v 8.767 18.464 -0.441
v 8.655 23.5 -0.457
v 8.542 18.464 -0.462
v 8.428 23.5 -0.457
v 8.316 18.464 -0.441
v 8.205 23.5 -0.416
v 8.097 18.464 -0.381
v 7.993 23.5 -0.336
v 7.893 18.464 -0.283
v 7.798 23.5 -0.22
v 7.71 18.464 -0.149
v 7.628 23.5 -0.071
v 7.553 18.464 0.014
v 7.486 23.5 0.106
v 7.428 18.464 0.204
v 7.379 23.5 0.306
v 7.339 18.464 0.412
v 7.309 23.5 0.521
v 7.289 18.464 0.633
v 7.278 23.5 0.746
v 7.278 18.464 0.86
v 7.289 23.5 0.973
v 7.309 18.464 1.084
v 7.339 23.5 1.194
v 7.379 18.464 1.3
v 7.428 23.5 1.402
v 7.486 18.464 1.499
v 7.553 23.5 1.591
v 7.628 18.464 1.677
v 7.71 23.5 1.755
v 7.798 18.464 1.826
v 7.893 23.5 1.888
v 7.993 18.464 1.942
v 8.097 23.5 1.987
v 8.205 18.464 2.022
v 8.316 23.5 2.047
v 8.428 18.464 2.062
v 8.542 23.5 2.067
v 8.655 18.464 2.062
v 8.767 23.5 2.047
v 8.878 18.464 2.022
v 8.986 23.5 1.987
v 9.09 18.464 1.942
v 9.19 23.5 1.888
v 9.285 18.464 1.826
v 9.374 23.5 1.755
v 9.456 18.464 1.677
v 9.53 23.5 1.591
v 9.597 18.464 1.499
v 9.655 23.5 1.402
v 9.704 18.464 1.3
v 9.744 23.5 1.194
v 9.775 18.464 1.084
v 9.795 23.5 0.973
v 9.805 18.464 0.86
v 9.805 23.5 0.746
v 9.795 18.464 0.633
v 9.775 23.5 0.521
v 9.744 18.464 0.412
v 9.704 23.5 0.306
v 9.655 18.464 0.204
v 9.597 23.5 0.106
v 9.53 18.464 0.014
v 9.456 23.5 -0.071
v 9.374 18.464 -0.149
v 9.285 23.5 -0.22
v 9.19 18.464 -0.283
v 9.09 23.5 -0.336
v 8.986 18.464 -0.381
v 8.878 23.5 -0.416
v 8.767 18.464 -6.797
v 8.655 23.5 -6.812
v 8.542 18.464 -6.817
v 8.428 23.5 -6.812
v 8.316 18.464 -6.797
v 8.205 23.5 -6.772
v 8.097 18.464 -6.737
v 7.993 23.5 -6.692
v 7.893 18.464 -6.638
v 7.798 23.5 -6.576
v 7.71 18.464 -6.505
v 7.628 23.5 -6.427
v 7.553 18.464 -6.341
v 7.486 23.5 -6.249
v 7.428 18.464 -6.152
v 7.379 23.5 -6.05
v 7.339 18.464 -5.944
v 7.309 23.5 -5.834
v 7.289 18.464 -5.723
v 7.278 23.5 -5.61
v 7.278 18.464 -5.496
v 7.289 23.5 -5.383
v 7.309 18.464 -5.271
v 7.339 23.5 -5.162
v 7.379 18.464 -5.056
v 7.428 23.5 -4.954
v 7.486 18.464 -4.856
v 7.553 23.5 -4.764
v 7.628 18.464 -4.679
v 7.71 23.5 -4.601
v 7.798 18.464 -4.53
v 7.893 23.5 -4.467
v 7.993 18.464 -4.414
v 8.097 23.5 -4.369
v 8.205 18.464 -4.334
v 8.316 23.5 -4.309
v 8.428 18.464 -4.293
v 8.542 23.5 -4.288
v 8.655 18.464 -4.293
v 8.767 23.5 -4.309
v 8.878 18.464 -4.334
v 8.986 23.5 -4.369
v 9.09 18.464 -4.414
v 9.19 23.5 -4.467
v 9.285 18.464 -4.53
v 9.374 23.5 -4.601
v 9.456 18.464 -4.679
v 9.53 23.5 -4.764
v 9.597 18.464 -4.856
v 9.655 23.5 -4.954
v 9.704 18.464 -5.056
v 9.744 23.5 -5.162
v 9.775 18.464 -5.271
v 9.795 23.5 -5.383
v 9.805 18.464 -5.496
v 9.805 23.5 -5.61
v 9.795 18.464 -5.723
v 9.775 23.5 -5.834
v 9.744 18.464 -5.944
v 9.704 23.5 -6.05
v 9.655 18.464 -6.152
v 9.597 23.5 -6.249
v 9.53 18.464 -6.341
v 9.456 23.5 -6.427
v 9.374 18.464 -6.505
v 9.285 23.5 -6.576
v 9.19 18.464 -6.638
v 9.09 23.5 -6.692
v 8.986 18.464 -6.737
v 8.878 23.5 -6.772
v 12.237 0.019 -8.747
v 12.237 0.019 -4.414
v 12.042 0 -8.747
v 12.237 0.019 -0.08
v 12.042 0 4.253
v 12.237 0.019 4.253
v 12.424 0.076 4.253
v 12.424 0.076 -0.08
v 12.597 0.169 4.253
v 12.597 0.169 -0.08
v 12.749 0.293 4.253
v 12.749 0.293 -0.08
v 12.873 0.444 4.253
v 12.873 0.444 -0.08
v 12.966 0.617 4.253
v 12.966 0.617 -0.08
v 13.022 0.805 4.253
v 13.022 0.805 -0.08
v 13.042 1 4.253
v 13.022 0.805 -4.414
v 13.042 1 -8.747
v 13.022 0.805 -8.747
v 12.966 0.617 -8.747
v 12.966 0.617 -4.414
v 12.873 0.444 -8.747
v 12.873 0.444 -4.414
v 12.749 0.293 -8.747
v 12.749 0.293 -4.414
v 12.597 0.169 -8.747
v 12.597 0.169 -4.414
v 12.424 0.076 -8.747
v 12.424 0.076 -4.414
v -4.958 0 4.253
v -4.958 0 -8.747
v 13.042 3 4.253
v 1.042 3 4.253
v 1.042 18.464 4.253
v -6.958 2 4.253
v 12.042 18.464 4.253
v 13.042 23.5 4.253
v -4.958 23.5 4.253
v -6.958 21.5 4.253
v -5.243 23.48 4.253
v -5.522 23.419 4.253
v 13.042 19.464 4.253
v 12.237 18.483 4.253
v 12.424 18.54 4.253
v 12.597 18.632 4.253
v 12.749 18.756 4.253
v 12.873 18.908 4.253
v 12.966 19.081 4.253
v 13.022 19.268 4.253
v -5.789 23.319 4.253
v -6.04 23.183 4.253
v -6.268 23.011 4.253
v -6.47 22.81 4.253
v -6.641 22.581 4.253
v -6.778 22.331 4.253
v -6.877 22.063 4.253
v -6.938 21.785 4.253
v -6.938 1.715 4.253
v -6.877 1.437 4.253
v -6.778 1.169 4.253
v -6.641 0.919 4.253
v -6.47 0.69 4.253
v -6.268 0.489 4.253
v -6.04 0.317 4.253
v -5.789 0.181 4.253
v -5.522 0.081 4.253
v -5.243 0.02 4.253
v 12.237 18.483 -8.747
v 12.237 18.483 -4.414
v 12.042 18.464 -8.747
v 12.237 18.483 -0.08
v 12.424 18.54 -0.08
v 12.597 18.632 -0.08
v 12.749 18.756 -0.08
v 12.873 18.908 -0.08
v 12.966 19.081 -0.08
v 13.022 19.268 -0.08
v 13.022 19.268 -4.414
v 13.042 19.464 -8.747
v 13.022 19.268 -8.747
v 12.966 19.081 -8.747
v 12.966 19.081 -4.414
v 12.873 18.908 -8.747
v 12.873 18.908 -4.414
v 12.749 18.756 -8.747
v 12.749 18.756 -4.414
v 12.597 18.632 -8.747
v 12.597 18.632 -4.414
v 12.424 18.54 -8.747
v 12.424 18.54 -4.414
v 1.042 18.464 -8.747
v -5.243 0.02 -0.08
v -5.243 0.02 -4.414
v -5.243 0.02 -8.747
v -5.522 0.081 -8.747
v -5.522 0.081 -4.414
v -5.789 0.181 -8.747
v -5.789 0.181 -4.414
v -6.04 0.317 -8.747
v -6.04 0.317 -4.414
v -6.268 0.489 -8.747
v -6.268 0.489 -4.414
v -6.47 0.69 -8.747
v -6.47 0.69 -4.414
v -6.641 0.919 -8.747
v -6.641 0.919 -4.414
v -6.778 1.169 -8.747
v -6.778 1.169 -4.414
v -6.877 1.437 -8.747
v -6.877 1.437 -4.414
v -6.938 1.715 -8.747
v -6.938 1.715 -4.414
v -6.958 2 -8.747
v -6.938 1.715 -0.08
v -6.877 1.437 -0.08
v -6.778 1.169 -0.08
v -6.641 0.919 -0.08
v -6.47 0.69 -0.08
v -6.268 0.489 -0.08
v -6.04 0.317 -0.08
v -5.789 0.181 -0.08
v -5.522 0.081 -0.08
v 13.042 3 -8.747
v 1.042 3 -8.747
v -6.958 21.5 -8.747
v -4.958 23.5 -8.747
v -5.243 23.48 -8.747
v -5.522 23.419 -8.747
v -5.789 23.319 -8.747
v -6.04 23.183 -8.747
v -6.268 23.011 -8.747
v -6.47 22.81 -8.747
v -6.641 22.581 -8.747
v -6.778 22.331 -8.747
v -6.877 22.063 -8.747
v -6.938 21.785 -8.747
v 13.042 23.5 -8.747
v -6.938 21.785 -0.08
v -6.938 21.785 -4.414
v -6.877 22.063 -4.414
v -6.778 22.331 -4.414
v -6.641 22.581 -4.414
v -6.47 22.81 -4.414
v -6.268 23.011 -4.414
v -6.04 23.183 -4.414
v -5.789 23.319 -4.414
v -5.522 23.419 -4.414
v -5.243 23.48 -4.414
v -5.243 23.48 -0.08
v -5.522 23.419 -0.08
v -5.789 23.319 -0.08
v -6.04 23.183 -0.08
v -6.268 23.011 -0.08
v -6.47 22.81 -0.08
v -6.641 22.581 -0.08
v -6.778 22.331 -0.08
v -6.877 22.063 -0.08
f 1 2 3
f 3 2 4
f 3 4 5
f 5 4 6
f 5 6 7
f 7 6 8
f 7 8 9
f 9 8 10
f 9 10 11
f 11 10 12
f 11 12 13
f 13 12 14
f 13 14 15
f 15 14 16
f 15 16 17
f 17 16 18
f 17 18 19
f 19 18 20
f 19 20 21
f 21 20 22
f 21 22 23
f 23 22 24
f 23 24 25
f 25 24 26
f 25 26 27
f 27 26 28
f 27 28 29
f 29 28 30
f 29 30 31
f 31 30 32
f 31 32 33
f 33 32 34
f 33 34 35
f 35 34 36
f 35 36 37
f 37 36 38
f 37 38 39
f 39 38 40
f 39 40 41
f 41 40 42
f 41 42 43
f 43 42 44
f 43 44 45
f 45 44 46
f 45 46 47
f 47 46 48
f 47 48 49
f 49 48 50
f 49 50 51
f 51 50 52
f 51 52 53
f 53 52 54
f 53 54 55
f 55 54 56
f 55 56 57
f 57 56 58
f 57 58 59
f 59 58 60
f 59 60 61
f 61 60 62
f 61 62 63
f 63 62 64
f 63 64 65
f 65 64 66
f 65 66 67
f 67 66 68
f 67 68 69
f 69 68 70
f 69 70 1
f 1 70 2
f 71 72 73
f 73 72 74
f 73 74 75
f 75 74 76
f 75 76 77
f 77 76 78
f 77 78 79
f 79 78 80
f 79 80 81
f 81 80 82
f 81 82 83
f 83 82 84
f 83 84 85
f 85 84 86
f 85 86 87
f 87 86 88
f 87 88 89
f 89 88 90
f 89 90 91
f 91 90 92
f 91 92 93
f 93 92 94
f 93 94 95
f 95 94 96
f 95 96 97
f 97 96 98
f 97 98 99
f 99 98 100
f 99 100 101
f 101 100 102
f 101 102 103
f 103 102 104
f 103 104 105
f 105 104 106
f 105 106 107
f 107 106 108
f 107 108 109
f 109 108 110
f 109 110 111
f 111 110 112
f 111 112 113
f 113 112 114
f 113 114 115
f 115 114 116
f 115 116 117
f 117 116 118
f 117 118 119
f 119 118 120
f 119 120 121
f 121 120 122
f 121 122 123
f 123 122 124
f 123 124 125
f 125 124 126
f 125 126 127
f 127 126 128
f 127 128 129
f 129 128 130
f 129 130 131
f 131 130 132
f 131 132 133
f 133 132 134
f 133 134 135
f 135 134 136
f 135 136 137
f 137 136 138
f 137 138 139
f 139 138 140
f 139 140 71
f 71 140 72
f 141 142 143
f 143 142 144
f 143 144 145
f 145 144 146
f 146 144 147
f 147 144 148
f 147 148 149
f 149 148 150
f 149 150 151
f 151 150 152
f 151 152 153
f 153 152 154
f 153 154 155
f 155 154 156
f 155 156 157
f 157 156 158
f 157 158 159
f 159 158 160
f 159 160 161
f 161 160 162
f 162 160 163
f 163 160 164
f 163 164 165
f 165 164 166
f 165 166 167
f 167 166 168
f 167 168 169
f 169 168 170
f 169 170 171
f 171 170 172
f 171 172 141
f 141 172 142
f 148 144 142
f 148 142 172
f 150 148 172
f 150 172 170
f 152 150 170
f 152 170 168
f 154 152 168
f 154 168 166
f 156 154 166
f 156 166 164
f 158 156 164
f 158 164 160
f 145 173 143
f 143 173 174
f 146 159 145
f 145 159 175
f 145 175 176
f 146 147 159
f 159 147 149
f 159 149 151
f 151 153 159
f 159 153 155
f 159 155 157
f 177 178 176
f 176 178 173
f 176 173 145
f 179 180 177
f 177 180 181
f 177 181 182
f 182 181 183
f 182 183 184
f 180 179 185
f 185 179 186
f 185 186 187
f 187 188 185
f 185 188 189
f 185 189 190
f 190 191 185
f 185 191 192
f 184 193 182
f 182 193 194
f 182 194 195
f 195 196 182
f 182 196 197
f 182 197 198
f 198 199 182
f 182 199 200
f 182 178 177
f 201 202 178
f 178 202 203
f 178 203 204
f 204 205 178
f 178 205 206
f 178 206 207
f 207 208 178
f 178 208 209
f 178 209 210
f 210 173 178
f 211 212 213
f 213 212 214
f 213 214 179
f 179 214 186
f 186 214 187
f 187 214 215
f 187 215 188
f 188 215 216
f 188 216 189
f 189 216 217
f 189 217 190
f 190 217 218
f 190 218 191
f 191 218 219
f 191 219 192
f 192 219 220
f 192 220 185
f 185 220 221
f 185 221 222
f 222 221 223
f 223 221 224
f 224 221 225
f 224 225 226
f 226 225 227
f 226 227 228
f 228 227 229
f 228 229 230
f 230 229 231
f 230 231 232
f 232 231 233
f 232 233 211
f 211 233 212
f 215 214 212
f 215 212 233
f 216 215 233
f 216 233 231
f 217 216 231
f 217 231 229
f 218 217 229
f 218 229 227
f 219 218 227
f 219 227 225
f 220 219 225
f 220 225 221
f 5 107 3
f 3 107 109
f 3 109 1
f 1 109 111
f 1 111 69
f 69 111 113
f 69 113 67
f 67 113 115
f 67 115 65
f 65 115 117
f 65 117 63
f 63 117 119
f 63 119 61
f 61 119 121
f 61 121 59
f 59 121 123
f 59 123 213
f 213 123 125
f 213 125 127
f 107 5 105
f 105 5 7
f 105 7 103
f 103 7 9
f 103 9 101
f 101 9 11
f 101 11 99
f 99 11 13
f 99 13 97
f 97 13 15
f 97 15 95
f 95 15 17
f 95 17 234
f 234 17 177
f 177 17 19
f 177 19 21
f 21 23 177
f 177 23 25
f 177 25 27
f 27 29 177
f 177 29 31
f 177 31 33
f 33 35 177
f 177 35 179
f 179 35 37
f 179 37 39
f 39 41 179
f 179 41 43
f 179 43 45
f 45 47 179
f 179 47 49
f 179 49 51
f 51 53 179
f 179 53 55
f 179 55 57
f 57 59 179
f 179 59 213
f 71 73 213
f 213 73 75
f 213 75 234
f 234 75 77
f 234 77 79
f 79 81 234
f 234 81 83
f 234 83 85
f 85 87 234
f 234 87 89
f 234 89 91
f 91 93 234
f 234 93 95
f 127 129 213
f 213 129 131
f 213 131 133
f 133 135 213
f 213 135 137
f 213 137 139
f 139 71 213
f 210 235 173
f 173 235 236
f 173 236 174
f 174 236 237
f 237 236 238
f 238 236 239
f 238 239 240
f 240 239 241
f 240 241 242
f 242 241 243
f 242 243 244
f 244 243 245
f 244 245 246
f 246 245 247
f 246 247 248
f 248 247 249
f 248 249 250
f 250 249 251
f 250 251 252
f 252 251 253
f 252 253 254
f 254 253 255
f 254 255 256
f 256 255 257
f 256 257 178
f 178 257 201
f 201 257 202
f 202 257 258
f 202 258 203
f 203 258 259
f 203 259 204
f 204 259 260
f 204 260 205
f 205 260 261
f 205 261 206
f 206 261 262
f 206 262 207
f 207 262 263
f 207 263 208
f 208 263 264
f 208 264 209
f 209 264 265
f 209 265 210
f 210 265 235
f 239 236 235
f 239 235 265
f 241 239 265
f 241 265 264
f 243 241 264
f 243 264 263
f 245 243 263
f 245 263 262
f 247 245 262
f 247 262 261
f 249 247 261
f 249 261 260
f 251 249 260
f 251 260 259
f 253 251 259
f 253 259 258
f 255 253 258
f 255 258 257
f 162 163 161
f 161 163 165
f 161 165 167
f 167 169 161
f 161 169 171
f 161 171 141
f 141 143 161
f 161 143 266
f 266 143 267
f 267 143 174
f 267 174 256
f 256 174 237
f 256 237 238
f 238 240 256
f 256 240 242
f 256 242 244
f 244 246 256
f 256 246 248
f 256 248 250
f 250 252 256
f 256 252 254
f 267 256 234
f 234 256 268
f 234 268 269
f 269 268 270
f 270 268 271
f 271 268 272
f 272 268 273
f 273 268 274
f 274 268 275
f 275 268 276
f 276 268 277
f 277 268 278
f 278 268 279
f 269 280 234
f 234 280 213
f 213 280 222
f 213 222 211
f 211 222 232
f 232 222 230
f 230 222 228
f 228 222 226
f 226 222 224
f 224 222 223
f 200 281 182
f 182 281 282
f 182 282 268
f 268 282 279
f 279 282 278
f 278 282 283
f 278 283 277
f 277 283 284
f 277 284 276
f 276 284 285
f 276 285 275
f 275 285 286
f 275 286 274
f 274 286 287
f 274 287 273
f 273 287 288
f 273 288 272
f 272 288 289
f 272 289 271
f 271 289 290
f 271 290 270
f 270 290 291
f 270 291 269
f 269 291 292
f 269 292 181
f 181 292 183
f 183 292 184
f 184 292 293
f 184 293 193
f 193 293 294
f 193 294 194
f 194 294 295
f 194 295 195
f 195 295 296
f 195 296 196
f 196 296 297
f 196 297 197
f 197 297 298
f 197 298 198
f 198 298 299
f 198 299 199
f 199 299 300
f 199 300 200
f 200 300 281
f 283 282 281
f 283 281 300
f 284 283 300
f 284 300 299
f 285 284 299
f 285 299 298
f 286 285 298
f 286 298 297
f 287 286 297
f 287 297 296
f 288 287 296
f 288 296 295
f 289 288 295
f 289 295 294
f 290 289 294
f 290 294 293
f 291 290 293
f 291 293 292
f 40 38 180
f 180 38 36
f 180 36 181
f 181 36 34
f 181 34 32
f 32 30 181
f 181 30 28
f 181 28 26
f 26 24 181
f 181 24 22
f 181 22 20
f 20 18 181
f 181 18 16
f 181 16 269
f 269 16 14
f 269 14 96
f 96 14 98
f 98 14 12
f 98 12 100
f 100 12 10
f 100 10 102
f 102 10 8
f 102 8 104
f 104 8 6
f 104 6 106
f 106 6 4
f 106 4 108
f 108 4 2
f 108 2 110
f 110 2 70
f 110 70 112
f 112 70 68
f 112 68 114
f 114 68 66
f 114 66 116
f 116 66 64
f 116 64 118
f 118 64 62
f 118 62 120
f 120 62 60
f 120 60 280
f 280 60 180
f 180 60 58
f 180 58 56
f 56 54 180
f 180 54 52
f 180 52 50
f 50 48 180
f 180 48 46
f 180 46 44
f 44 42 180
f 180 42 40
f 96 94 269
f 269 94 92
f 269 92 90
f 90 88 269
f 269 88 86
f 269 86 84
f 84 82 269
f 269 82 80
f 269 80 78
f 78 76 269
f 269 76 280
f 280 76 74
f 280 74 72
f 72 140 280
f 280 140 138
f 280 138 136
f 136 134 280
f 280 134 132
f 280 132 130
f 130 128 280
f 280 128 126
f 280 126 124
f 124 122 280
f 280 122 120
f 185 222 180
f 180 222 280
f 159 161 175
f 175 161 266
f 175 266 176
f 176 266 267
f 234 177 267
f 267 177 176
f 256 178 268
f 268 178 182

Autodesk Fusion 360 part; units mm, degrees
sketch "Sketch1" plane through (0, 0, 0) normal (0, 1, 0) x (1, 0, 0)
  line L0 (-6.9583, -4.2531) -> (13.0417, -4.2531)
  line L1 (13.0417, -4.2531) -> (13.0417, 8.7469)
  line L2 (13.0417, 8.7469) -> (-6.9583, 8.7469)
  line L3 (-6.9583, 8.7469) -> (-6.9583, -4.2531)
  line L4 (-6.9583, -4.2531) -> (1.0417, -4.2531)
  line L5 (1.0417, -4.2531) -> (1.0417, 8.7469)
  line L6 (1.0417, 8.7469) -> (-6.9583, 8.7469)
  line L7 (-6.9583, 8.7469) -> (-6.9583, -4.2531)
  dimension "d4" = 20
  dimension "d5" = 13
  dimension "d7" = 8
  dimension "d8" = 13
extrude "Extrude1" add sketch "Sketch1" along normal blind 23.5 contours L0 L2 L3 L4 L5 L6 L7
extrude "Extrude2" add sketch "Sketch1" along normal blind 3 contours L0 L1 L2 L5
sketch "Sketch2" plane through (1.0417, 0, 0) normal (1, 0, 0) x (0, 1, 0)
  line L0 (3, -8.7469) -> (23.5, -8.7469)
  line L1 (23.5, -8.7469) -> (23.5, 4.2531)
  line L2 (23.5, 4.2531) -> (3, 4.2531)
  line L3 (3, -0.2469) -> (18.5, -0.2469)
  line L4 (23.5, 4.2531) -> (18.4635, 4.2531)
  line L5 (18.4635, 4.2531) -> (18.4635, -8.7469)
  line L6 (18.4635, -8.7469) -> (23.5, -8.7469)
  line L7 (23.5, -8.7469) -> (23.5, 4.2531)
  line L8 (3, 4.2531) -> (3, -8.7469)
  dimension "d16" = 15.5
extrude "Extrude3" add sketch "Sketch2" along normal blind 12 contours L0 L1 L2 L4 L5 L6 L7
fillet "Fillet1" radius 2 1 edges at (-6.9583, 23.5, -2.2469)
fillet "Fillet2" radius 2 1 edges at (-6.9583, 0, -2.2469)
fillet "Fillet3" radius 1 1 edges at (13.0417, 18.4635, -2.2469)
fillet "Fillet4" radius 1 1 edges at (13.0417, 0, -2.2469)
sketch "Sketch3" plane through (0, 23.5, 0) normal (0, 1, 0) x (-1, 0, 0)
  line L0 (4.9583, -8.7469) -> (4.9583, 4.2531)
  line L1 (4.9583, 4.2531) -> (-13.0417, 4.2531)
  line L2 (-13.0417, 4.2531) -> (-13.0417, -8.7469)
  line L3 (-13.0417, -8.7469) -> (4.9583, -8.7469)
  line L4 (4.9583, -2.2469) -> (-13.0417, -2.2469)
  line L5 (-8.5241, 4.0524) -> (-8.5241, 0.8024)
  line L6 (-8.5417, -8.8028) -> (-8.5417, -5.5528)
  circle A0 centre (-8.5241, 0.8024) radius 1.3
  circle A1 centre (-8.5417, -5.5528) radius 1.3
  line L7 (-13.0417, 0.8028) -> (-8.5417, 0.8028)
  line L8 (-13.0417, -5.5528) -> (-8.5417, -5.5528)
  dimension "d32" = 3.25
  dimension "d33" = 3.25
  dimension "d34" = 2.6
  dimension "d35" = 2.6
  dimension "d36" = 4.5
  dimension "d37" = 4.5
hole "Hole2" at (8.5417, 23.5, 0.8028) at (8.5417, 23.5, -5.5528) direction (0, -1, 0) diameter 2.529 depth 10 tip angle 118
equation "clamp_w = 20 mm"
equation "clamp_l = 13 mm"
equation "clamp_bot_thickness = 3 mm"
equation "d4 = clamp_w"
equation "d5 = clamp_l"
equation "clamp_mid_w = 8 mm"
equation "d7 = clamp_mid_w"
equation "d8 = clamp_l"
equation "clamp_mid_thickness = deck_bed_gap + clamp_bot_thickness + clamp_top_thickness"
equation "d10 = clamp_mid_thickness"
equation "d12 = clamp_bot_thickness"
equation "clamp_top_thickness = 5 mm"
equation "deck_bed_gap = 15.5 mm"
equation "d16 = deck_bed_gap"
equation "top_clamp_depth = clamp_w - clamp_mid_w"
equation "d18 = top_clamp_depth"
